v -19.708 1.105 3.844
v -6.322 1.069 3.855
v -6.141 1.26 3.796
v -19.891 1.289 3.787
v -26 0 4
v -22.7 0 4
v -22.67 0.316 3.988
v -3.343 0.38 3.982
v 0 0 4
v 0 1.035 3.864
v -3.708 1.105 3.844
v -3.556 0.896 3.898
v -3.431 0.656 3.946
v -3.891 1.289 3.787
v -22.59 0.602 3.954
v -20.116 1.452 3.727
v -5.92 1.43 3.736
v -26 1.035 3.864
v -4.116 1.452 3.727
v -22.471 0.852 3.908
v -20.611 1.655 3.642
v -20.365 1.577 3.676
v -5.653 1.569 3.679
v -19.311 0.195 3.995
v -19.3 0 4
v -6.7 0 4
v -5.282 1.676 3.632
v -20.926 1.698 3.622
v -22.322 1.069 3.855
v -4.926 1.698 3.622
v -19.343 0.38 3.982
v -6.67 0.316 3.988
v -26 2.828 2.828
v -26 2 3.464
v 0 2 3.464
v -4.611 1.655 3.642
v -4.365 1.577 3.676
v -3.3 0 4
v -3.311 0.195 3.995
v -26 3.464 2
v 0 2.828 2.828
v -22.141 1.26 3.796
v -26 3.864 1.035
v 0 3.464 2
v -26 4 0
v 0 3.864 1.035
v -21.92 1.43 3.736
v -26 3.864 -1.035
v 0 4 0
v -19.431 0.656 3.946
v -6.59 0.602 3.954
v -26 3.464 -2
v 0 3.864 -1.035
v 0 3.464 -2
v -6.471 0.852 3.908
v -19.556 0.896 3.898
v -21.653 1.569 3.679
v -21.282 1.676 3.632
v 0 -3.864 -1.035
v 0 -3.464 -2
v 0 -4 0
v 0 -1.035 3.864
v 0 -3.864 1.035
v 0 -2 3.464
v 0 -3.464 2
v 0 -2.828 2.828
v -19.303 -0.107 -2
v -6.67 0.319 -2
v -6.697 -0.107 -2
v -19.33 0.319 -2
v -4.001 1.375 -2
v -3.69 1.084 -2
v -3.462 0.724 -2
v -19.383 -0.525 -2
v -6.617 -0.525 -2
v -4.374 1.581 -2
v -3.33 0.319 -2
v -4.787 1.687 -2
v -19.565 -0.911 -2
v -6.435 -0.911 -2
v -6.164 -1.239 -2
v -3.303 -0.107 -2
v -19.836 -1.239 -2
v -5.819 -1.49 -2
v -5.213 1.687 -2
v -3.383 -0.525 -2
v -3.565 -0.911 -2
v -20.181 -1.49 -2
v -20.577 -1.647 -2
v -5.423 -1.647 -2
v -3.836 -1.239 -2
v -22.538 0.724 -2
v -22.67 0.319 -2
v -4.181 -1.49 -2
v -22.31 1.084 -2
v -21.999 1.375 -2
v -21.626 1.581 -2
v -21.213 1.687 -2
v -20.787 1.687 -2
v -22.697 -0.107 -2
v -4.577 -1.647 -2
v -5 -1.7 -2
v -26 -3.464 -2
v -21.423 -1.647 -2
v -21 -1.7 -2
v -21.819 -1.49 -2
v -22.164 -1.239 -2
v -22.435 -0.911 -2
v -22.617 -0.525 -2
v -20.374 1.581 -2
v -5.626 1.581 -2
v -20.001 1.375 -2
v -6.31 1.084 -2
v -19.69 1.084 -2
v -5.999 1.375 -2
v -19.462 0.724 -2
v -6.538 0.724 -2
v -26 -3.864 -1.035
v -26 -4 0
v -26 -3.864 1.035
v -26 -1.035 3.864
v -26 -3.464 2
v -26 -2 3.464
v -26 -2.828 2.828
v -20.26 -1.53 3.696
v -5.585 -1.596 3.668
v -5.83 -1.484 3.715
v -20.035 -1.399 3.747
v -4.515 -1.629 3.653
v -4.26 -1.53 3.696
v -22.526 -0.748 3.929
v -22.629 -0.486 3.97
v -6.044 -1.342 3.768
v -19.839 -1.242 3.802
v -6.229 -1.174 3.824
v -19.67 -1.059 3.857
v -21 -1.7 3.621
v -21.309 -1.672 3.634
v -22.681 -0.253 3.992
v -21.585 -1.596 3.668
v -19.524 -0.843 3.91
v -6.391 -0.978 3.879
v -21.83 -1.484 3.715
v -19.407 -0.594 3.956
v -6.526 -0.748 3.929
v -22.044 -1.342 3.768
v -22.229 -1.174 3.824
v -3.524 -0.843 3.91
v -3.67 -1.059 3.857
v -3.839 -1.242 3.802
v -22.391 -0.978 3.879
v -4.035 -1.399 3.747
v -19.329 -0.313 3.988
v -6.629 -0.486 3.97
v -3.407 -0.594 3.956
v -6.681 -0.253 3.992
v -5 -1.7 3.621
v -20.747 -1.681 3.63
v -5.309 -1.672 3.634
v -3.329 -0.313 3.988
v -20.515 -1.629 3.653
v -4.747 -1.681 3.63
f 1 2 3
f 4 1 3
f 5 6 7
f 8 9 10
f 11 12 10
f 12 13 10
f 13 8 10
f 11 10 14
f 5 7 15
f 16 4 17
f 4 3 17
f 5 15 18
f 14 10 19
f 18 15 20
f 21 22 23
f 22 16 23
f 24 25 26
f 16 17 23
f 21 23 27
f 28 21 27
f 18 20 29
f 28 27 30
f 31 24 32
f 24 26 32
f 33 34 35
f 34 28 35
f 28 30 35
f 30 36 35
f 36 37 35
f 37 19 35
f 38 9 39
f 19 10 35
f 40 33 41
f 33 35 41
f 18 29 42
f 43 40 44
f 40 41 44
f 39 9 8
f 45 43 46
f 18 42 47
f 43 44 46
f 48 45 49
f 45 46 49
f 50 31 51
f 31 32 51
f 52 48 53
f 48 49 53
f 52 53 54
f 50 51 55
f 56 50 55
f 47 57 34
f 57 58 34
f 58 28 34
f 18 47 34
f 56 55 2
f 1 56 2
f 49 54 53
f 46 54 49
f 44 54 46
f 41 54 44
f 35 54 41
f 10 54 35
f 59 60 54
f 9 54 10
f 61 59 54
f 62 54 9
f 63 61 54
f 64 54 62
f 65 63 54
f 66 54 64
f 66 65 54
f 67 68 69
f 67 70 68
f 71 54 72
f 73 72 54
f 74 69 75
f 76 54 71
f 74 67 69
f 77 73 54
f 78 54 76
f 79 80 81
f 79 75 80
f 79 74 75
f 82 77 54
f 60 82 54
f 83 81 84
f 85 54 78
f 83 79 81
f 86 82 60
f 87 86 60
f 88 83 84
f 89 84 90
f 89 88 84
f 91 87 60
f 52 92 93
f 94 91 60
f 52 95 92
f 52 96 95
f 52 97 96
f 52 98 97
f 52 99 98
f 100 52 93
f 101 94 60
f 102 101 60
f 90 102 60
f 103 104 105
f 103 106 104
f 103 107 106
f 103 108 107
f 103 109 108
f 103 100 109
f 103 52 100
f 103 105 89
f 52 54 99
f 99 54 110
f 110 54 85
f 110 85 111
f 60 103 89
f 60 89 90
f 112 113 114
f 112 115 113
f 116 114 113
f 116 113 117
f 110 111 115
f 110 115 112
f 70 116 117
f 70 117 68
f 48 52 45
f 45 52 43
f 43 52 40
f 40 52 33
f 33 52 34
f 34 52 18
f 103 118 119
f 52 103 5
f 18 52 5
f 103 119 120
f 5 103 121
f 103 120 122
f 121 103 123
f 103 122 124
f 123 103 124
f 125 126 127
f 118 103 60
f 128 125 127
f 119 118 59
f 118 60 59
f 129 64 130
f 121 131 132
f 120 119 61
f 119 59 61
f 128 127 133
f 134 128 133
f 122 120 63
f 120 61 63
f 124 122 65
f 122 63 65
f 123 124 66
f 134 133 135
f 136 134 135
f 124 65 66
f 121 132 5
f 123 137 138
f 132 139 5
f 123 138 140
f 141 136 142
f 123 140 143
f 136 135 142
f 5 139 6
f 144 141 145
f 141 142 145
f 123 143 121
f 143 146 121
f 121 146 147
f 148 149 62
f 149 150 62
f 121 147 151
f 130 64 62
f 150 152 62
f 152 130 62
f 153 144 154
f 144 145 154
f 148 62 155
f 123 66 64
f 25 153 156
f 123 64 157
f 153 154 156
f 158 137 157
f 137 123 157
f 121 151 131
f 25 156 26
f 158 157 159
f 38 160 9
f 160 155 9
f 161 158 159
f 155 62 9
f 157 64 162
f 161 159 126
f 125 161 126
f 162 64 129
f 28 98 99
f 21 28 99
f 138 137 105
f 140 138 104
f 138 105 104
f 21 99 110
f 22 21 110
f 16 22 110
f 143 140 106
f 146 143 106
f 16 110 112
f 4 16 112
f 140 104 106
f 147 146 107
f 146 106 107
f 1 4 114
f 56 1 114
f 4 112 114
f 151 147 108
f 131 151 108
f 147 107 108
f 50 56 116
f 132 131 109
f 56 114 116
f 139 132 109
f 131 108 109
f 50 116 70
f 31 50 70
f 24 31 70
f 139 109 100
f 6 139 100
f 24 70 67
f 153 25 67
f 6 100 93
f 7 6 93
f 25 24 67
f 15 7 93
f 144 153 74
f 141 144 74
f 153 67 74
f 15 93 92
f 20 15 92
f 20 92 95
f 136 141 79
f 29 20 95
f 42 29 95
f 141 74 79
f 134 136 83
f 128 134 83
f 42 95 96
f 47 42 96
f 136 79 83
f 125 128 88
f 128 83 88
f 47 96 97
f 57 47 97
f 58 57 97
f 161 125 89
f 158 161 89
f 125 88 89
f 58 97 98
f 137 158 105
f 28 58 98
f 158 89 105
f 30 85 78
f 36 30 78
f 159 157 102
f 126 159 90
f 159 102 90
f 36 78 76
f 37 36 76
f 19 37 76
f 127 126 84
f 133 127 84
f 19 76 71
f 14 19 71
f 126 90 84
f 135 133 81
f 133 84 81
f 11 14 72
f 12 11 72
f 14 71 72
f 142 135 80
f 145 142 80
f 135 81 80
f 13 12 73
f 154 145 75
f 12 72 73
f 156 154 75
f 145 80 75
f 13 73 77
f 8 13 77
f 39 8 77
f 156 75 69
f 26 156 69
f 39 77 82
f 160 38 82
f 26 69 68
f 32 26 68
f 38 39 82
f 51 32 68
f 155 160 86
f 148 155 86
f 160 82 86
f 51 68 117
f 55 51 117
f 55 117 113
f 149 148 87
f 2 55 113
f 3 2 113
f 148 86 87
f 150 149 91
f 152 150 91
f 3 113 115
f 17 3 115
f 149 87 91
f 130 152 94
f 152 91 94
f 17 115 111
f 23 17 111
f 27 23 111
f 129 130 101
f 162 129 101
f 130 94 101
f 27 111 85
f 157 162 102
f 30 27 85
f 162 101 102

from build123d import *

# Parameters (mm, degrees)
SKETCH_R        = 4
PAD_DEPTH       = 26
SKETCH001_W     = 4
SKETCH001_H     = 12
POCKET_DEPTH    = 26
SKETCH002_R     = 1.7
POCKET001_DEPTH = 7


with BuildPart() as part:
    # Sketch → Pad (new body)
    with BuildSketch(Plane.ZY):
        Circle(SKETCH_R)
    extrude(amount=PAD_DEPTH)

    # Sketch001 → Pocket (cut)
    with BuildSketch(Plane.ZY.offset(26)):
        with Locations((-4, -1)):
            Rectangle(SKETCH001_W, SKETCH001_H)
    extrude(amount=-POCKET_DEPTH, mode=Mode.SUBTRACT)

    # Sketch002 → Pocket001 (cut)
    with BuildSketch(Plane(origin=(0, 0, -2), x_dir=(0, -1, 0), z_dir=(0, 0, -1))):
        with Locations((0, 21)):
            Circle(SKETCH002_R)
        with Locations((0, 5)):
            Circle(SKETCH002_R)
    extrude(amount=-POCKET001_DEPTH, mode=Mode.SUBTRACT)


solid = part.part
